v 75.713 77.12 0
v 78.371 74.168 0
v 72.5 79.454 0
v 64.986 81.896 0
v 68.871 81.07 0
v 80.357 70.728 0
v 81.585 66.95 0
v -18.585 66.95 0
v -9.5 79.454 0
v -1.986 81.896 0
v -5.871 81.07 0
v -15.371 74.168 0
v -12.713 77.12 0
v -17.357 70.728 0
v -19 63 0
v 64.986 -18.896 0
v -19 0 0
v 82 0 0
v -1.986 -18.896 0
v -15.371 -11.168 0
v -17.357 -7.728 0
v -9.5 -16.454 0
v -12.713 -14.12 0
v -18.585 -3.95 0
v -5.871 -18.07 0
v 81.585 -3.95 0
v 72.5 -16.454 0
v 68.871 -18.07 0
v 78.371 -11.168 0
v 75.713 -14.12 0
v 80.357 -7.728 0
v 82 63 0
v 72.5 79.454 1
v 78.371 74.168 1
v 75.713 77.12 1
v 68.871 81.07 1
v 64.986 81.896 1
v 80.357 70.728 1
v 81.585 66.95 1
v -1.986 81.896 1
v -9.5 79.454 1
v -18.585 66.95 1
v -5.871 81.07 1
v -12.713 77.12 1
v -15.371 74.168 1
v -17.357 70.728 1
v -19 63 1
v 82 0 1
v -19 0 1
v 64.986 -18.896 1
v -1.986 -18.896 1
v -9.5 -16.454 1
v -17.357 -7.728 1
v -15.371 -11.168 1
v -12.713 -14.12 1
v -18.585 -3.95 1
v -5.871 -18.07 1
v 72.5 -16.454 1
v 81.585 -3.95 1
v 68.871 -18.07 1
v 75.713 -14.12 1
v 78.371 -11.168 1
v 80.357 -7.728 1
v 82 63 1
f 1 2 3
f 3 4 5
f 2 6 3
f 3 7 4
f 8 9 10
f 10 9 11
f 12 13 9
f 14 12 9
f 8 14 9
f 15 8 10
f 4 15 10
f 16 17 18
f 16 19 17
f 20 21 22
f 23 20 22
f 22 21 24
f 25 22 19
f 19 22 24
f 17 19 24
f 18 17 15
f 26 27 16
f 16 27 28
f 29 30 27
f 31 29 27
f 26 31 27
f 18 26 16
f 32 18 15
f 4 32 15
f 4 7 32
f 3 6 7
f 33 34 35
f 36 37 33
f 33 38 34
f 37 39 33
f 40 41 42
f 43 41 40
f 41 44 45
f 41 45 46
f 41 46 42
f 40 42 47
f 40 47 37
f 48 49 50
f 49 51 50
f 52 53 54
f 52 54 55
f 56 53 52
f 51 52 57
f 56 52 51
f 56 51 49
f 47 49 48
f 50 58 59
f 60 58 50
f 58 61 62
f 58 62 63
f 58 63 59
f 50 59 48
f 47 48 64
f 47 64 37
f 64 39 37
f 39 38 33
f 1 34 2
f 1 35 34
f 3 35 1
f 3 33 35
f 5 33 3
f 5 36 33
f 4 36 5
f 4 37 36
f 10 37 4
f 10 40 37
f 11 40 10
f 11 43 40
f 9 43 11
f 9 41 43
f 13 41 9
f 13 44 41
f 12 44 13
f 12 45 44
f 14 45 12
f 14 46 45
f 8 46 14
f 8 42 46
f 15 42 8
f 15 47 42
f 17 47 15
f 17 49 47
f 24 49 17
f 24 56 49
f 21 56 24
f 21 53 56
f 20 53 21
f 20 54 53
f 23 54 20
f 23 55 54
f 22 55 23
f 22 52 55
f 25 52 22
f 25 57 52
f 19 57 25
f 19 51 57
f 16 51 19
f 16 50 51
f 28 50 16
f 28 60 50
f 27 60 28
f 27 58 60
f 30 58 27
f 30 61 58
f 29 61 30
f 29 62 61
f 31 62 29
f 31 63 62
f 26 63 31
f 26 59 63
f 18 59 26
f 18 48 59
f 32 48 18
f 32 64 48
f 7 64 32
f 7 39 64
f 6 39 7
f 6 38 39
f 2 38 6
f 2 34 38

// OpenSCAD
$fs=.5;
linear_extrude(1)minkowski(){
	circle(r=19);
	square(101-19*2);
}
